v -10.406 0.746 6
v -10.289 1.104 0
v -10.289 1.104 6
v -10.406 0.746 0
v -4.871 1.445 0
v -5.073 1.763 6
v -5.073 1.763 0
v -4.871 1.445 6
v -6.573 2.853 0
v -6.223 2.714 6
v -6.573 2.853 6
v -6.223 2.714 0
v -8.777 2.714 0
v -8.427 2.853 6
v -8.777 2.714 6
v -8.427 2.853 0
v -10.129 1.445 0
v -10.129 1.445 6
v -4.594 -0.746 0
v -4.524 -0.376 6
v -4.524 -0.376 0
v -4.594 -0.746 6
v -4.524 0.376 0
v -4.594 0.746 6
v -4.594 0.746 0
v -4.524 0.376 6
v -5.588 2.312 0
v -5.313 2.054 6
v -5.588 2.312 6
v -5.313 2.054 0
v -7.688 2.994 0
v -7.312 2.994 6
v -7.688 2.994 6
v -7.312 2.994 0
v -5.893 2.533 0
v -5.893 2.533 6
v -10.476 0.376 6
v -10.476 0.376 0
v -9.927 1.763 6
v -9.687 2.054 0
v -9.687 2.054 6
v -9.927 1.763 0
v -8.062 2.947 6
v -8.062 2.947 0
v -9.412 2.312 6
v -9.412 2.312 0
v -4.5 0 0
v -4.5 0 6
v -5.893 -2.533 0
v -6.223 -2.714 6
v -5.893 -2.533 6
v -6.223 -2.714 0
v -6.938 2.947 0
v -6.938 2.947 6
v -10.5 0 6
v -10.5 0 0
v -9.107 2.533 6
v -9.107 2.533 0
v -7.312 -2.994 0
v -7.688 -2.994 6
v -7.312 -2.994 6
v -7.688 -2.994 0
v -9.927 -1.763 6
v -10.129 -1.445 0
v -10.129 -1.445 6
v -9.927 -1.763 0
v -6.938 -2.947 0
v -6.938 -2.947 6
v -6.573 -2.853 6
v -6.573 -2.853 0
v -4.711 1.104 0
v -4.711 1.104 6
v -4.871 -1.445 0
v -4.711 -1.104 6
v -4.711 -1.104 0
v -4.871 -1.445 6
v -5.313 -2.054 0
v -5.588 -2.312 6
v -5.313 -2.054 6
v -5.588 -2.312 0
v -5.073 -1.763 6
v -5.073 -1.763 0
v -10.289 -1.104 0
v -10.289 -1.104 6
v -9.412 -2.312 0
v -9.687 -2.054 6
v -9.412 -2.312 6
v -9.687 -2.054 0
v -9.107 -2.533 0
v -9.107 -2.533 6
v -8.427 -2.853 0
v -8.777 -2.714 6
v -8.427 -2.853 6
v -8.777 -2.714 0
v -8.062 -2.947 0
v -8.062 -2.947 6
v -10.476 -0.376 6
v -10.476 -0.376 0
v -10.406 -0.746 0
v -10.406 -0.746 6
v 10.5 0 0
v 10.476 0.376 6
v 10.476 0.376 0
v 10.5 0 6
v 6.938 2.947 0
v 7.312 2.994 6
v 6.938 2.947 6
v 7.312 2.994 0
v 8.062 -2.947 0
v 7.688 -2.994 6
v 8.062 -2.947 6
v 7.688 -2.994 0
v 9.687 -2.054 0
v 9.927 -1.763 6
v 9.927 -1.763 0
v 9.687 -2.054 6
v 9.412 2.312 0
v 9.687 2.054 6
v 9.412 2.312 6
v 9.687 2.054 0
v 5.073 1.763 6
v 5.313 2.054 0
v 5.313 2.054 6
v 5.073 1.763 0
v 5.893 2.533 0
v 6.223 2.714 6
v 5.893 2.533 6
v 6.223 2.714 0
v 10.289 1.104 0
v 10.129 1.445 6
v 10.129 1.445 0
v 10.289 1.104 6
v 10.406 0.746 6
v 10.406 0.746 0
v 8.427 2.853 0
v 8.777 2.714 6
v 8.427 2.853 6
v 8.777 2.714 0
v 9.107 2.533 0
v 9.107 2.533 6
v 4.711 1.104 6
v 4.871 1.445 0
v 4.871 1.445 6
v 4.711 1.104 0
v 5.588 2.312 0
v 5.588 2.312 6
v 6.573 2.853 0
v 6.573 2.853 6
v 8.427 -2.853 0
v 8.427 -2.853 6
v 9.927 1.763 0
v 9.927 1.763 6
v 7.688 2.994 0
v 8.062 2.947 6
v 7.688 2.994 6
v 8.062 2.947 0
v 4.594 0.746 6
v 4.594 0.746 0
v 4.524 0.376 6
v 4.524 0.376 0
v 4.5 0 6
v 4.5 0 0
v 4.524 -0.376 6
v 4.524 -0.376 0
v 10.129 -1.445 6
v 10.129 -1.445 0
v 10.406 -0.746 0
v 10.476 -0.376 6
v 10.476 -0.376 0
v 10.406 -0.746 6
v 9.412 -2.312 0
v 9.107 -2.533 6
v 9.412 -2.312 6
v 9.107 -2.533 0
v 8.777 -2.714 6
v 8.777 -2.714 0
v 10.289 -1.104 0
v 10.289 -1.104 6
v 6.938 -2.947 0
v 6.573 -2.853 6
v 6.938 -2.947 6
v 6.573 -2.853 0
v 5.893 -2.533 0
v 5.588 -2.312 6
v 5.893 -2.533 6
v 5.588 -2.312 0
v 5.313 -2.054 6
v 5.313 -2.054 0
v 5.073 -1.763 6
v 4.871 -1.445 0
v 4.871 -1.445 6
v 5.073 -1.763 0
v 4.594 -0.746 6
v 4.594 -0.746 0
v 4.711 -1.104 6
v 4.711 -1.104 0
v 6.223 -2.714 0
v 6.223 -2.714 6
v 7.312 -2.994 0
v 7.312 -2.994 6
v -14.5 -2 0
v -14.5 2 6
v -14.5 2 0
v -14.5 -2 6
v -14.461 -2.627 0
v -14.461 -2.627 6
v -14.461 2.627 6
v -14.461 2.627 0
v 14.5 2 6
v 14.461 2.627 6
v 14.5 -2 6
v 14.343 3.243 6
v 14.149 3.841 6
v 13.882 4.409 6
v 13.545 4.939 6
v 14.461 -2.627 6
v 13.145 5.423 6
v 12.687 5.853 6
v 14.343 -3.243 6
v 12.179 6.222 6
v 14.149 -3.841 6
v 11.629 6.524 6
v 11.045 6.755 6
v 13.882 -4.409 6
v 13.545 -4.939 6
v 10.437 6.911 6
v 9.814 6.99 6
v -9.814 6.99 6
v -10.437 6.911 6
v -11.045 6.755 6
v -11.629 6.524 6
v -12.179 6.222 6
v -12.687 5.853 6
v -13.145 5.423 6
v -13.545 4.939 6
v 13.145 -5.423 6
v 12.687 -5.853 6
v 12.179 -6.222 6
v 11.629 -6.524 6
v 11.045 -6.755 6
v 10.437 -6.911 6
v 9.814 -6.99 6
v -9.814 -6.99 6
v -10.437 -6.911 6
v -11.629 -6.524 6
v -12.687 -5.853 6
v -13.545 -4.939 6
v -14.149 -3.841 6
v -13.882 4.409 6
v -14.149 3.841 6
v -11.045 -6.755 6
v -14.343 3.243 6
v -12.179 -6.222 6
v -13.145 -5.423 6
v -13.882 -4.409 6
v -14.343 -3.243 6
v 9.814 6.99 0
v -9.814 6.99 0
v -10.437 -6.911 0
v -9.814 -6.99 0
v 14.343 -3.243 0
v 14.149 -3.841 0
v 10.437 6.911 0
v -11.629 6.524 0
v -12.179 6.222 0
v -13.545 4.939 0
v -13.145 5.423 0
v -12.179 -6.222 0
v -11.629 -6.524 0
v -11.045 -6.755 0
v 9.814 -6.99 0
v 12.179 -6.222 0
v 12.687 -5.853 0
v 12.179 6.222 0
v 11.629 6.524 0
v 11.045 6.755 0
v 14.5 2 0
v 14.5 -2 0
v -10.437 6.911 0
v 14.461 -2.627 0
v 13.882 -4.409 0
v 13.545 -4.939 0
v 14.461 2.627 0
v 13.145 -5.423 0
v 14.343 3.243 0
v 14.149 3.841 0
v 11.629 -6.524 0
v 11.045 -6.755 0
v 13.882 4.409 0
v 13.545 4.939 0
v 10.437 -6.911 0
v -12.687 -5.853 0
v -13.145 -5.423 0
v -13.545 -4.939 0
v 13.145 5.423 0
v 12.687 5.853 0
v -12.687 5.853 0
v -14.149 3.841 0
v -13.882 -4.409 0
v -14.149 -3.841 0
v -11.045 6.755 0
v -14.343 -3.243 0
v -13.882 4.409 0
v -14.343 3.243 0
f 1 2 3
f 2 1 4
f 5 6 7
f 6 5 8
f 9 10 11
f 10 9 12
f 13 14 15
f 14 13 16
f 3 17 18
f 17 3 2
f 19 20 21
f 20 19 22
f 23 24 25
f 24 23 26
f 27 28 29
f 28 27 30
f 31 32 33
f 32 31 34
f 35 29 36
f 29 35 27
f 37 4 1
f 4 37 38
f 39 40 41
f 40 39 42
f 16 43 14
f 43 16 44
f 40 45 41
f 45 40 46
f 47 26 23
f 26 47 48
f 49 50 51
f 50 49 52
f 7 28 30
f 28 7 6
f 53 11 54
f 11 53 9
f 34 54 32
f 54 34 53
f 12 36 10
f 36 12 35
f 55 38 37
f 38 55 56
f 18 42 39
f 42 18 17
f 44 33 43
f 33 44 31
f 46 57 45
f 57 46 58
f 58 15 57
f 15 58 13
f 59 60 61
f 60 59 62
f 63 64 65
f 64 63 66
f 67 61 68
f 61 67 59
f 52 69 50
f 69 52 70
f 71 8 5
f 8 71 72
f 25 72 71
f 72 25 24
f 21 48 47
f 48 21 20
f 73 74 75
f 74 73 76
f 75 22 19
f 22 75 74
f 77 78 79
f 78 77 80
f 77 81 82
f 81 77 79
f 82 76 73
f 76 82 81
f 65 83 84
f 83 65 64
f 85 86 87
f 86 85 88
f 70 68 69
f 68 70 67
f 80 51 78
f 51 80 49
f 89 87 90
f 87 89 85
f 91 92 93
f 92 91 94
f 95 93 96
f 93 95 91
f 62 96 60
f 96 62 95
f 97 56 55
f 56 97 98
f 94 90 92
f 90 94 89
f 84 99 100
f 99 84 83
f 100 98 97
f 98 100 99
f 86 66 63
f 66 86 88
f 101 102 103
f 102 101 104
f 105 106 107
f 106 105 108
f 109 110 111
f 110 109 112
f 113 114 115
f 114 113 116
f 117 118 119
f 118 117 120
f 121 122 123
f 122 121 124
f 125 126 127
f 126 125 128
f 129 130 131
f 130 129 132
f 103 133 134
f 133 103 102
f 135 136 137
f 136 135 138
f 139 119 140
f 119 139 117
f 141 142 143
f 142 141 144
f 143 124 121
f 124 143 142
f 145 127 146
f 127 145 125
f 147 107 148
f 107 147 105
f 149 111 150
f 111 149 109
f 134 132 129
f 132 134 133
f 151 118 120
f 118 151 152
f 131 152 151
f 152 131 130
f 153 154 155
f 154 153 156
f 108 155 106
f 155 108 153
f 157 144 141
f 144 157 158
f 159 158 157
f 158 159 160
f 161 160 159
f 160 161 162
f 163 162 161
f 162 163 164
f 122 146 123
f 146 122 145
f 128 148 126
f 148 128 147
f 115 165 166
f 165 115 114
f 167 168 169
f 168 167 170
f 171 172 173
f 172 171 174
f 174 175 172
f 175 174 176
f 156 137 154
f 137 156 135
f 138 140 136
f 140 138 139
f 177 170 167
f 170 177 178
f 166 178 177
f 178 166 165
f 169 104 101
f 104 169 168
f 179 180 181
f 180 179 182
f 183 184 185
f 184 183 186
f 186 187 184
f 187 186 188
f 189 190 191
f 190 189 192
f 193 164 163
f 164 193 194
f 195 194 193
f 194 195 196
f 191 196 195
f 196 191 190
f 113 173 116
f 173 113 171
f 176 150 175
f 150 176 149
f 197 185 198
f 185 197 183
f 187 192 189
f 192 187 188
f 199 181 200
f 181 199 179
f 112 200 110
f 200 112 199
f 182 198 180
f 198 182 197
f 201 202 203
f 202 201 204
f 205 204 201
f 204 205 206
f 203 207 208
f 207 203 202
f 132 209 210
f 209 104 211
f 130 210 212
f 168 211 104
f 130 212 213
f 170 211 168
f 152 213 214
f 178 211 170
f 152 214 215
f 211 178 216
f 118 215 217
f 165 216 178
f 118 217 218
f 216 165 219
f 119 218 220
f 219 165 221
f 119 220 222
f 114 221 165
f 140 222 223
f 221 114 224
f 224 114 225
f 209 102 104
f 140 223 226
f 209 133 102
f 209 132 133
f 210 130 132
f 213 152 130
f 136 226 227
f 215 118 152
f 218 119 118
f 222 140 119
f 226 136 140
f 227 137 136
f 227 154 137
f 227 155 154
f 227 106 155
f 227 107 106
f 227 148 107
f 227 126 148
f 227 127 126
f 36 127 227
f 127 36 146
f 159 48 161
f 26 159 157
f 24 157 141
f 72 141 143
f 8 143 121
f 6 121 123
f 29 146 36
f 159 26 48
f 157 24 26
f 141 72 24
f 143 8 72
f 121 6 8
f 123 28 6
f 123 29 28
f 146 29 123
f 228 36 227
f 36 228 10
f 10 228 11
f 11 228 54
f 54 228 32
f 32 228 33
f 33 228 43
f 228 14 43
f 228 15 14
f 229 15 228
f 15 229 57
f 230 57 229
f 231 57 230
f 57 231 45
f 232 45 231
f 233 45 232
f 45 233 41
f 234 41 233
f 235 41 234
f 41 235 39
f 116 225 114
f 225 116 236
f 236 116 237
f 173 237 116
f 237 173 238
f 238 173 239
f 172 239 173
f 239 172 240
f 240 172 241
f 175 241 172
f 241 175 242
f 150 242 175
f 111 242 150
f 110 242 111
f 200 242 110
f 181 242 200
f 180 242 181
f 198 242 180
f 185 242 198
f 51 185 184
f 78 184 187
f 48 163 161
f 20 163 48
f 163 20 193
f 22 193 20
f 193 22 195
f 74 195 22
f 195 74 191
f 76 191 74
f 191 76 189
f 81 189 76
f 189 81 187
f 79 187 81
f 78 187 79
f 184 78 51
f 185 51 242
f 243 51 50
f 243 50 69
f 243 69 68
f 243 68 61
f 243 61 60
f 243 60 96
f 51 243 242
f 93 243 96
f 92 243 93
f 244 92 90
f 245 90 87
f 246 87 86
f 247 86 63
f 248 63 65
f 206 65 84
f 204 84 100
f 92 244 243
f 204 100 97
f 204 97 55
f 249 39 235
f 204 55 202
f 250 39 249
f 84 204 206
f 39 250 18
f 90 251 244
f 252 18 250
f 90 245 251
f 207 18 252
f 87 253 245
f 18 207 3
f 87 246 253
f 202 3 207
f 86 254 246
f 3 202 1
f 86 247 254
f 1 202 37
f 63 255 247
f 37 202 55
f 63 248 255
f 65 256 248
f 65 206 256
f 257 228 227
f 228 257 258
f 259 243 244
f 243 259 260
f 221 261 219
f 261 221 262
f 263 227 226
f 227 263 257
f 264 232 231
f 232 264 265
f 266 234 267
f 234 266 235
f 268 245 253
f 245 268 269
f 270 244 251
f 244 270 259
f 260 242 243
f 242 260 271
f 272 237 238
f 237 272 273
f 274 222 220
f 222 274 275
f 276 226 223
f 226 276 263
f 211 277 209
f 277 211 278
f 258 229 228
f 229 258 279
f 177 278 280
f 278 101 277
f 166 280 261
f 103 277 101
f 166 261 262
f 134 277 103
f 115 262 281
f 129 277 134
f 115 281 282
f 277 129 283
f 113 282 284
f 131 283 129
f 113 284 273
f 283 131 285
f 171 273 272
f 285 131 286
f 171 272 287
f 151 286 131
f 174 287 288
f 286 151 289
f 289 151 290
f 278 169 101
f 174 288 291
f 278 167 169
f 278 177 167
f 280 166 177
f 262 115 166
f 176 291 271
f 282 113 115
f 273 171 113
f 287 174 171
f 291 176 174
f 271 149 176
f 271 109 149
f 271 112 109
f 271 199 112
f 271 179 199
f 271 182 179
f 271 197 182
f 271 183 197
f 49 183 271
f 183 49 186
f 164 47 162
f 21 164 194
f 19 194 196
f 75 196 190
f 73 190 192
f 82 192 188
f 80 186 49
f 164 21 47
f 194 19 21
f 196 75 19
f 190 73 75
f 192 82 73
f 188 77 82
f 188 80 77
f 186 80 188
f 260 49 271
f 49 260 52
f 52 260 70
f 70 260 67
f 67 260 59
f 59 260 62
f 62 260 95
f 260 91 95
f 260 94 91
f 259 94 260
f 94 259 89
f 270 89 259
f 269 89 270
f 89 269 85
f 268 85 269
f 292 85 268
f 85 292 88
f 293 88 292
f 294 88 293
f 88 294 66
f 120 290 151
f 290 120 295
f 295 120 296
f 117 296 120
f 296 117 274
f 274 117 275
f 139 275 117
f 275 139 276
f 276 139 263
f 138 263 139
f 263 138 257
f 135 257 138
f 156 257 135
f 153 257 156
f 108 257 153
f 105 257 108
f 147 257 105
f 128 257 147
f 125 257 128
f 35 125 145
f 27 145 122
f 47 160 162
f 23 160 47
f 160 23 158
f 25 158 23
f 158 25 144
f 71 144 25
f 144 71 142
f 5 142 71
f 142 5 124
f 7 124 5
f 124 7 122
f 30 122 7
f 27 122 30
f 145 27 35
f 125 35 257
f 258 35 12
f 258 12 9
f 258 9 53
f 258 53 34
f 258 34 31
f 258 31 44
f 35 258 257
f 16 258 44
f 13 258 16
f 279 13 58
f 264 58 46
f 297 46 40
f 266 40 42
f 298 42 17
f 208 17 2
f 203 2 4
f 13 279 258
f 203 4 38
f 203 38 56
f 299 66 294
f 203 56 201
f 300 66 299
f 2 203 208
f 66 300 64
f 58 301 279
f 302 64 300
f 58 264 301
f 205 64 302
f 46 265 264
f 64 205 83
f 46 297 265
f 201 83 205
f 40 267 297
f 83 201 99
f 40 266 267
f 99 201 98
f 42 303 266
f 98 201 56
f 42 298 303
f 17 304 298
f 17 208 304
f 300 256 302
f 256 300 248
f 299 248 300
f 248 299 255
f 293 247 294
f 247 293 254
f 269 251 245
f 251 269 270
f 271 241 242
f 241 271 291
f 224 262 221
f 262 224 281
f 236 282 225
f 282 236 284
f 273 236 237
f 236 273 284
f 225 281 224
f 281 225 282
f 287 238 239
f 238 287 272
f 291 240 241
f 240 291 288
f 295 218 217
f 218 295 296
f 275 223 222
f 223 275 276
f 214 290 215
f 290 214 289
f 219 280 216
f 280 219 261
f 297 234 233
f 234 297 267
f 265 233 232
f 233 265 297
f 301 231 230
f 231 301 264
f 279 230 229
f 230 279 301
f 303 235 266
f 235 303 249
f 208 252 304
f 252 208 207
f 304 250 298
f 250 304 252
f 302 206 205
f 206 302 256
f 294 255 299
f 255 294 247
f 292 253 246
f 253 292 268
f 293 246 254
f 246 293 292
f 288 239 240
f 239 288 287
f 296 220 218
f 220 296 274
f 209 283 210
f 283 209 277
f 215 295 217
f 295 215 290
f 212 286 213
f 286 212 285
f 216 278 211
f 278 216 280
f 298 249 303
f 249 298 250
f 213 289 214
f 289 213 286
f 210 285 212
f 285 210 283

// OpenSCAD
$fn = 50;


difference() {
	union() {
		hull() {
			translate(v = [-9.5000000000, 2.0000000000, 0]) {
				cylinder(h = 6, r = 5);
			}
			translate(v = [9.5000000000, 2.0000000000, 0]) {
				cylinder(h = 6, r = 5);
			}
			translate(v = [-9.5000000000, -2.0000000000, 0]) {
				cylinder(h = 6, r = 5);
			}
			translate(v = [9.5000000000, -2.0000000000, 0]) {
				cylinder(h = 6, r = 5);
			}
		}
	}
	union() {
		translate(v = [-7.5000000000, 0.0000000000, 0]) {
			translate(v = [0, 0, -100]) {
				cylinder(h = 200, r = 3.0000000000);
			}
		}
		translate(v = [7.5000000000, 0.0000000000, 0]) {
			translate(v = [0, 0, -100]) {
				cylinder(h = 200, r = 3.0000000000);
			}
		}
	}
}
